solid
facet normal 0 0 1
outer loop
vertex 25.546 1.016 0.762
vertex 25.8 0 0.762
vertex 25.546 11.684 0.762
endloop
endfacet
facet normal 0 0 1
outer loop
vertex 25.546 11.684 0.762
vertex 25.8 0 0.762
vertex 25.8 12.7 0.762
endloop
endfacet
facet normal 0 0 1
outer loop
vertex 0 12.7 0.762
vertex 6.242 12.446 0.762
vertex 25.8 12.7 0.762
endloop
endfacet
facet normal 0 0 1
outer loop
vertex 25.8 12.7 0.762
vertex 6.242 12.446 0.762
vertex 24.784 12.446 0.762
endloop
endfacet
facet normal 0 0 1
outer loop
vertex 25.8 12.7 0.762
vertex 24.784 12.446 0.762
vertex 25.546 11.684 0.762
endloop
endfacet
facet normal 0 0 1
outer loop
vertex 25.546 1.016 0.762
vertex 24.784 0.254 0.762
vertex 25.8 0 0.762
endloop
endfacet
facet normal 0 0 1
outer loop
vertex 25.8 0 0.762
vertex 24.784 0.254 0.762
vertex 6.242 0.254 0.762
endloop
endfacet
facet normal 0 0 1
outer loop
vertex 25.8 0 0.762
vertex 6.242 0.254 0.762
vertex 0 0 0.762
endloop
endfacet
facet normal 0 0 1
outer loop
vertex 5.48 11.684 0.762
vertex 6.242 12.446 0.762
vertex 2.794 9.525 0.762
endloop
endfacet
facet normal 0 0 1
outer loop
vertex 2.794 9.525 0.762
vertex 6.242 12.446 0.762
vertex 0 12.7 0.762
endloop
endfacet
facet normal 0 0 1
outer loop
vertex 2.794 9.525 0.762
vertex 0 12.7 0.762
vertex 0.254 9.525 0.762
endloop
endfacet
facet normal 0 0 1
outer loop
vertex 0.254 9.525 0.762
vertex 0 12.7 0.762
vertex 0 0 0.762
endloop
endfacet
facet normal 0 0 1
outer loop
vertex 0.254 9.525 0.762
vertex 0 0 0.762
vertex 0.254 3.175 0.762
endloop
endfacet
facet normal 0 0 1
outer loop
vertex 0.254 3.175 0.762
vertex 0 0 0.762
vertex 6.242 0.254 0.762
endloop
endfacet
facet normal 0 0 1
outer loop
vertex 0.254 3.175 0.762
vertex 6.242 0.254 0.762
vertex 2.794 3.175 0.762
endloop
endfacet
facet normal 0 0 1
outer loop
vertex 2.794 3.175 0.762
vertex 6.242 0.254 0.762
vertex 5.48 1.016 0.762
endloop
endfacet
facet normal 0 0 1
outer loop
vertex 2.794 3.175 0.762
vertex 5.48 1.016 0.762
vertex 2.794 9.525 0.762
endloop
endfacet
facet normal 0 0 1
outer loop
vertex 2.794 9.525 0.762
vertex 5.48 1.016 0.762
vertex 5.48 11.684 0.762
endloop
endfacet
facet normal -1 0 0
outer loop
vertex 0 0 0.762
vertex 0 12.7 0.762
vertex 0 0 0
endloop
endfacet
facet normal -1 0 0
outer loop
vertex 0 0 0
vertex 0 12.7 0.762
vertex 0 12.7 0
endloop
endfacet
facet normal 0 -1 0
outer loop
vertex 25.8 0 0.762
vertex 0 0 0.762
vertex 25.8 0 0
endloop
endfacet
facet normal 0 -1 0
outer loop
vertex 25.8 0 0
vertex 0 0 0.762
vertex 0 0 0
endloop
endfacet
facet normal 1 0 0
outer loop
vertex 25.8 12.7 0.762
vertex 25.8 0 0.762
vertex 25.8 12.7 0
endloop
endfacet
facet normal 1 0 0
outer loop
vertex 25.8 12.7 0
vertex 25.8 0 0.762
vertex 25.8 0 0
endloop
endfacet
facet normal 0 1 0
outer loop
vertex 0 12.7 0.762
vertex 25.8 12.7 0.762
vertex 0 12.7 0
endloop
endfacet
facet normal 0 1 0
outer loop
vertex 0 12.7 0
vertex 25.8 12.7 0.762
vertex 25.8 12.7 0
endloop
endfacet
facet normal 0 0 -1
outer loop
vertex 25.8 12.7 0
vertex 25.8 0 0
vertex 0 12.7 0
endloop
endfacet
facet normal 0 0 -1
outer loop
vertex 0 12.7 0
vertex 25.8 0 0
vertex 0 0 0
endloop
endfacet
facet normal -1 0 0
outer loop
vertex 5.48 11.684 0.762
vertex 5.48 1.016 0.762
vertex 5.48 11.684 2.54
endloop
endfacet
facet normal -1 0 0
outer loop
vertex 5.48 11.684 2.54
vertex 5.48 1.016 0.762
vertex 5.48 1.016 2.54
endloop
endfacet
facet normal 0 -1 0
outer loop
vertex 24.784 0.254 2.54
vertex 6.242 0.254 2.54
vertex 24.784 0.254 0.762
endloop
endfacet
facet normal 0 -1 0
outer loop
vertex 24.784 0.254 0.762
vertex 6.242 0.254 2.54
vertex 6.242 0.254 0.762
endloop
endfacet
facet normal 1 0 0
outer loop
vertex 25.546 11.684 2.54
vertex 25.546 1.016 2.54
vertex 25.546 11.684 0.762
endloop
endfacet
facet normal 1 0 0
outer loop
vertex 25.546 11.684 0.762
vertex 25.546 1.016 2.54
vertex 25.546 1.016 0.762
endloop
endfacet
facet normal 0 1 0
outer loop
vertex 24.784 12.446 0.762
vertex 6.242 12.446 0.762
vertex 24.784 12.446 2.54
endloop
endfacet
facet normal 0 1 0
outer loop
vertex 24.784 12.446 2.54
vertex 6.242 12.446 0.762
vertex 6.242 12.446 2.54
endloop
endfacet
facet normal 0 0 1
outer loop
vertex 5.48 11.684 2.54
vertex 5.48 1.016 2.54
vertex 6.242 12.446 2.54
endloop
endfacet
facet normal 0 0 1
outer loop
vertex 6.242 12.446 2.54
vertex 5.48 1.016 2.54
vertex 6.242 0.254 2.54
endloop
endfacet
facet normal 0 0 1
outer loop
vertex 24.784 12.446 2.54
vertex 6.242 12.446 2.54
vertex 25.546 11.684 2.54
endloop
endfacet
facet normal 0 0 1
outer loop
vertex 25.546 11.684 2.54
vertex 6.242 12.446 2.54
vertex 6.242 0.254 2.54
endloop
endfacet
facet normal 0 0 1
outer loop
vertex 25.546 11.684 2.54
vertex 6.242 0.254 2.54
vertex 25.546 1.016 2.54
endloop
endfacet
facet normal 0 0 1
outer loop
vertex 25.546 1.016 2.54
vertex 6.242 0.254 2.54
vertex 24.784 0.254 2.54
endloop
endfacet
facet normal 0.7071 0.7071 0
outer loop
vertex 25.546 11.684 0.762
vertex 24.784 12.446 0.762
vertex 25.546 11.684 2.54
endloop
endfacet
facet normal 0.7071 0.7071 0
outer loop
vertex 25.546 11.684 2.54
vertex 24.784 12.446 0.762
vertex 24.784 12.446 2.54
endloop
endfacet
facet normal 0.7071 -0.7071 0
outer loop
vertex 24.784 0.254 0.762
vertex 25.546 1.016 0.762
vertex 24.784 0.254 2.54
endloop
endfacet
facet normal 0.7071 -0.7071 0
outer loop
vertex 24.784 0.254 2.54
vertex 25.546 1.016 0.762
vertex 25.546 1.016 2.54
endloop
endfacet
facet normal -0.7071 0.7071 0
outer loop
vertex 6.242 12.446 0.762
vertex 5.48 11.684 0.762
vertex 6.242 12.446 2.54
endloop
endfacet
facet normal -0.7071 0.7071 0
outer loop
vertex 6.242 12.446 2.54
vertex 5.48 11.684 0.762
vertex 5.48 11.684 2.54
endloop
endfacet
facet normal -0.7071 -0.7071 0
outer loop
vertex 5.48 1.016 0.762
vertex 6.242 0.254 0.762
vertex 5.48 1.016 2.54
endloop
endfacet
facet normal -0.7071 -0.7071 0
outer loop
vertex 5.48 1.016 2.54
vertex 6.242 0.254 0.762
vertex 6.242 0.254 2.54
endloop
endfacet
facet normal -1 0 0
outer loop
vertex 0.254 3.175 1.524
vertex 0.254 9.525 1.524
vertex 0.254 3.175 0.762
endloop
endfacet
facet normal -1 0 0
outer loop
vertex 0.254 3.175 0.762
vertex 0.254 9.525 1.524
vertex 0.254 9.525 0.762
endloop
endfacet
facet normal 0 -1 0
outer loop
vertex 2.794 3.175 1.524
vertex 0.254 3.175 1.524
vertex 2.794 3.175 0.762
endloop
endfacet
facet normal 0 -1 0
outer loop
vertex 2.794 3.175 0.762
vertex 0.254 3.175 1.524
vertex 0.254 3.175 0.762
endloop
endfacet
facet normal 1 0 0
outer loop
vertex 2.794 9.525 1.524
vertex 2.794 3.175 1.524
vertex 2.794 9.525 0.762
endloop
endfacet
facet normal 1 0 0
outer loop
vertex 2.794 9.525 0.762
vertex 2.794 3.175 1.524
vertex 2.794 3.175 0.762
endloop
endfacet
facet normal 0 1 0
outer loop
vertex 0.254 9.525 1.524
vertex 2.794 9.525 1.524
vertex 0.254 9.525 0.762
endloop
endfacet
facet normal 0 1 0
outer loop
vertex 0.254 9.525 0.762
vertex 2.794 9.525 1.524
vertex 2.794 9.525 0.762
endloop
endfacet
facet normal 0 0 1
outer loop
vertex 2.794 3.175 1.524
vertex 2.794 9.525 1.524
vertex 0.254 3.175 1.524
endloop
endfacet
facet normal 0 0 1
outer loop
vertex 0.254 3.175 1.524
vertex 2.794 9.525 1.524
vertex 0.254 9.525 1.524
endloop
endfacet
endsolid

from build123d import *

# Parameters (mm, degrees)
SKETCH1_W           = 25.8
SKETCH1_H           = 12.7
BOSS_EXTRUDE1_DEPTH = 0.762
SKETCH2_W           = 20.066
SKETCH2_H           = 12.192
BOSS_EXTRUDE2_DEPTH = 1.778
CHAMFER1_SIZE       = 0.762
SKETCH3_W           = 2.54
SKETCH3_H           = 6.35
BOSS_EXTRUDE3_DEPTH = 0.762


with BuildPart() as part:
    # Sketch1 → Boss-Extrude1 (new body)
    with BuildSketch(Plane.XY):
        with Locations((12.9, 6.35)):
            Rectangle(SKETCH1_W, SKETCH1_H)
    extrude(amount=BOSS_EXTRUDE1_DEPTH)

    # Sketch2 → Boss-Extrude2 (add)
    with BuildSketch(Plane.XY.offset(0.762)):
        with Locations((15.513, 6.35)):
            Rectangle(SKETCH2_W, SKETCH2_H)
    extrude(amount=BOSS_EXTRUDE2_DEPTH)

    # Chamfer1
    chamfer1_edges = [part.edges().sort_by_distance(p)[0] for p in [
        (5.48, 12.446, 1.651),
        (5.48, 0.254, 1.651),
        (25.546, 0.254, 1.651),
        (25.546, 12.446, 1.651),
    ]]
    chamfer(chamfer1_edges, length=CHAMFER1_SIZE)

    # Sketch3 → Boss-Extrude3 (add)
    with BuildSketch(Plane.XY.offset(0.762)):
        with Locations((1.524, 6.35)):
            Rectangle(SKETCH3_W, SKETCH3_H)
    extrude(amount=BOSS_EXTRUDE3_DEPTH)


solid = part.part
